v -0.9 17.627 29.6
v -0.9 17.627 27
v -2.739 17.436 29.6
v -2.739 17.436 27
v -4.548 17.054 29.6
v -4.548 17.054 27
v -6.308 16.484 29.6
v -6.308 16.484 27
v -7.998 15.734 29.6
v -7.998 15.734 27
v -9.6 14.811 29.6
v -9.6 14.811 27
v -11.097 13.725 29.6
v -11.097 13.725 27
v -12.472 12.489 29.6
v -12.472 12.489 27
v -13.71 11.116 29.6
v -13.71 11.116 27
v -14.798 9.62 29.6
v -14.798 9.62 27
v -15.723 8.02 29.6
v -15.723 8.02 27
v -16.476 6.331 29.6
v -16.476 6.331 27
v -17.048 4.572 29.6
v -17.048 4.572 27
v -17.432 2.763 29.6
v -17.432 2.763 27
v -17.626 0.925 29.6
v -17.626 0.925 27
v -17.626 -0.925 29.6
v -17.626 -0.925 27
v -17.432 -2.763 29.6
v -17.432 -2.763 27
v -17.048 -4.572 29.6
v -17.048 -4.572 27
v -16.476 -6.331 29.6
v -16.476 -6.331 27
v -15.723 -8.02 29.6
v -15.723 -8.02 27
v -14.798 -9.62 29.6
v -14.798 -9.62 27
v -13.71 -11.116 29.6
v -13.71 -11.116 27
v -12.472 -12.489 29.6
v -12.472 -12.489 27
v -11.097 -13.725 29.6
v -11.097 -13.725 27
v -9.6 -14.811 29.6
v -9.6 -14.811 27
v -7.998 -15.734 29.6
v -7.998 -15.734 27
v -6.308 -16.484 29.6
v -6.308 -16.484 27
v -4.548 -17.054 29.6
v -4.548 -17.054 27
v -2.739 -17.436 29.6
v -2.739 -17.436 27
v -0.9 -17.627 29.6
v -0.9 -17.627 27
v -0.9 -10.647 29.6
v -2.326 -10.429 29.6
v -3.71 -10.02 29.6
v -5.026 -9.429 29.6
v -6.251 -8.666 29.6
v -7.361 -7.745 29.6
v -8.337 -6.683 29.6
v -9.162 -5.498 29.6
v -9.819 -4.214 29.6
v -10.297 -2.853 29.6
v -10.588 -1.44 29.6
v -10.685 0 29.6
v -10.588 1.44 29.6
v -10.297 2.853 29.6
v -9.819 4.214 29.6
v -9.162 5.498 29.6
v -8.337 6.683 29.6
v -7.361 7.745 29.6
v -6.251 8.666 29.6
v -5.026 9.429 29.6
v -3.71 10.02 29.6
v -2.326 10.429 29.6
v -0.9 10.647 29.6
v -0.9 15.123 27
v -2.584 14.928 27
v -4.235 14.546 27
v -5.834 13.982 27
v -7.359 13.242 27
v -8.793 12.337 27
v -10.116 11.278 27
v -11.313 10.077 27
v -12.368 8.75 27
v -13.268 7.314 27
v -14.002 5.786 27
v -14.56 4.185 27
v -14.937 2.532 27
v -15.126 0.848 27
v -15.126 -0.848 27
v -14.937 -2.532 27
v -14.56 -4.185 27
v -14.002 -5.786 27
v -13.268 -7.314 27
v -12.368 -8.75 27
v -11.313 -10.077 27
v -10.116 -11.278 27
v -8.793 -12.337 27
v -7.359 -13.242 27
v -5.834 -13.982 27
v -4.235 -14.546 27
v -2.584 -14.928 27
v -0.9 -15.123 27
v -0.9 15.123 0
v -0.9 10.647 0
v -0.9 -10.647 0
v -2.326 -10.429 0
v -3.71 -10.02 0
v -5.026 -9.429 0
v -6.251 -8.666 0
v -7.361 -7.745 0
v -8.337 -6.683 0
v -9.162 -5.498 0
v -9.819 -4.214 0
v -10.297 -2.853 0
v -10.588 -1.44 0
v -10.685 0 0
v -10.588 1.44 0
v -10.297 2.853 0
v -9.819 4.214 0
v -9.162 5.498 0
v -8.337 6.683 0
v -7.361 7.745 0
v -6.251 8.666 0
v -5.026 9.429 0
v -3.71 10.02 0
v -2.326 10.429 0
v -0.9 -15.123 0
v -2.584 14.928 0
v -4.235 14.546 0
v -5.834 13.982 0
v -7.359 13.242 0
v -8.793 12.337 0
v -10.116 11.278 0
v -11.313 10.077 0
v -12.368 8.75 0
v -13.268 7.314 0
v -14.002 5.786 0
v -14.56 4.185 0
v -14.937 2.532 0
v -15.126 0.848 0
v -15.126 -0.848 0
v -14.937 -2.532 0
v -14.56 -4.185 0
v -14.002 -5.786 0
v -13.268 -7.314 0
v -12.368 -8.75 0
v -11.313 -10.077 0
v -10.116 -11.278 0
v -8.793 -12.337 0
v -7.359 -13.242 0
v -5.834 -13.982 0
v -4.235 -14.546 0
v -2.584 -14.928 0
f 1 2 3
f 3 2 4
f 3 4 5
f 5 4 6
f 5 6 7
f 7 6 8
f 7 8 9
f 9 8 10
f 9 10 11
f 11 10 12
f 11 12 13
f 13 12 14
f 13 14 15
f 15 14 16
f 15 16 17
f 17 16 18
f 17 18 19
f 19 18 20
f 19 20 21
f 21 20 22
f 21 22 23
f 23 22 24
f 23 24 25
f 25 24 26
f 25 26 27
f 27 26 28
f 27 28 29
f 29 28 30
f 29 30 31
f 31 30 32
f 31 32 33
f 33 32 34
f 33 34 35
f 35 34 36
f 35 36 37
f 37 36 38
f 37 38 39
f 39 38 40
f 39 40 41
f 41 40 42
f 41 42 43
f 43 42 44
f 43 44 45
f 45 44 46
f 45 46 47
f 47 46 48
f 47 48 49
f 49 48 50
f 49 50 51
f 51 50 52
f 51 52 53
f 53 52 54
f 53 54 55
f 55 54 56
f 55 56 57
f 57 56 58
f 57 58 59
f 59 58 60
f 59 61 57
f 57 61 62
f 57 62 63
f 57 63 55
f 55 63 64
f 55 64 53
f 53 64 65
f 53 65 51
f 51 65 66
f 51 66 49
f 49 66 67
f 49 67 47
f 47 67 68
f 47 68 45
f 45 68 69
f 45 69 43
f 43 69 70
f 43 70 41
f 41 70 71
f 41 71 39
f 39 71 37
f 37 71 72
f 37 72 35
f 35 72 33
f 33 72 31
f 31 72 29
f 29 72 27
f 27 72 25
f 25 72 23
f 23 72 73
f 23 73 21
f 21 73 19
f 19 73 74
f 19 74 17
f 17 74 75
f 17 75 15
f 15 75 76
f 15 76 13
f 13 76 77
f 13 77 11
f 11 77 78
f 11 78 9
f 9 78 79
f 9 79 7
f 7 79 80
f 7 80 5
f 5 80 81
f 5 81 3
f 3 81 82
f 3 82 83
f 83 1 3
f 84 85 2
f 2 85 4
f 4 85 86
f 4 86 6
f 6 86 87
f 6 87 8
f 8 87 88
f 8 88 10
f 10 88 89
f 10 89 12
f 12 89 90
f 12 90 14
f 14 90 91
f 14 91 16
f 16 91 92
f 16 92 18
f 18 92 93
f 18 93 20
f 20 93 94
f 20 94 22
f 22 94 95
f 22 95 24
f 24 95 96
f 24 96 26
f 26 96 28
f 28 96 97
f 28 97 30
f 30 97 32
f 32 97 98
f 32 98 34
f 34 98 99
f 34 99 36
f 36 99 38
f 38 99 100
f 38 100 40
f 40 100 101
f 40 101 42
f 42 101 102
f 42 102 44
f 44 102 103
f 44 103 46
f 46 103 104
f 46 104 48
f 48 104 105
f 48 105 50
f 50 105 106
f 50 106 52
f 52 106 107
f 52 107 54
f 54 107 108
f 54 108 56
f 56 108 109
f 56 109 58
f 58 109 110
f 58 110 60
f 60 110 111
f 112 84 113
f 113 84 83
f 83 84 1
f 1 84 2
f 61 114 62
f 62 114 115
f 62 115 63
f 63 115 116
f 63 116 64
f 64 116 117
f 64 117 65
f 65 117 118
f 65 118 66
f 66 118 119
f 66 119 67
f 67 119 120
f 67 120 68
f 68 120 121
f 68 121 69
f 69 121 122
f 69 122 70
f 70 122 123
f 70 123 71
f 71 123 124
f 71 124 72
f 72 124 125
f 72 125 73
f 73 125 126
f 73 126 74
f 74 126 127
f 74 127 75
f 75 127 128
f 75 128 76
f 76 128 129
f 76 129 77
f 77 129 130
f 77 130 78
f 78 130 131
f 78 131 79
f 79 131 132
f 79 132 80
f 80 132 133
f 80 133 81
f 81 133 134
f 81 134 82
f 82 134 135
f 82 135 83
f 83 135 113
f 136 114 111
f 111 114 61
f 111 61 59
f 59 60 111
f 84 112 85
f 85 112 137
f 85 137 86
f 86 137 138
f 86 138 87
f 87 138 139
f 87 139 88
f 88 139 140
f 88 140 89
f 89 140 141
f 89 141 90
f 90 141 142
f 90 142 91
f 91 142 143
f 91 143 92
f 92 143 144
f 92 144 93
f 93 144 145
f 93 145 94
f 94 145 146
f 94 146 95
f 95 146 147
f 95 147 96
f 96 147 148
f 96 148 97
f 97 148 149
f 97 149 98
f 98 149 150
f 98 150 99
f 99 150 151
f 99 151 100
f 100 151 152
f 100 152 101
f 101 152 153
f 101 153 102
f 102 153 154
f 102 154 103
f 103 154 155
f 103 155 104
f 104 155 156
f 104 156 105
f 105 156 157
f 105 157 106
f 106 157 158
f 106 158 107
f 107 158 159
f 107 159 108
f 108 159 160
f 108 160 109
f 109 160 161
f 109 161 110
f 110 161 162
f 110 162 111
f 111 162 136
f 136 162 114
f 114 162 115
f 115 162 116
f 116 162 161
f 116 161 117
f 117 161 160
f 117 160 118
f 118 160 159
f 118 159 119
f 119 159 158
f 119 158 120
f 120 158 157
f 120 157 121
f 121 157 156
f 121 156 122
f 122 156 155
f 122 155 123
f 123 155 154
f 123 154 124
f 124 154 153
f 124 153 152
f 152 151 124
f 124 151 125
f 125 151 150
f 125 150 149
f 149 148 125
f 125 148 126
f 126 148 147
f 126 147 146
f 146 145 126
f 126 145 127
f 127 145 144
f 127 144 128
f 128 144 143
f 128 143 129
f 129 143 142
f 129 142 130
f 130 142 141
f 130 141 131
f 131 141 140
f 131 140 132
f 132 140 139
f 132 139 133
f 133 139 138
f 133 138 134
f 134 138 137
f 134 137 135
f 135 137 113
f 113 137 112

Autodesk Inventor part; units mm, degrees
ref_plane "YZ Plane" through (0, 0, 0) normal (1, 0, 0) x (0, 1, 0)
ref_plane "XZ Plane" through (0, 0, 0) normal (0, 1, 0) x (-1, 0, 0)
ref_plane "XY Plane" through (0, 0, 0) normal (0, 0, 1) x (1, 0, 0)
sketch "Sketch1" plane through (0, 0, 0) normal (0, 0, 1) x (1, 0, 0)
  circle A0 centre (0, 0) radius 10.685 construction
  line L0 (-0.9, 10.647) -> (-0.9, -10.647) construction
  line L1 (-0.9, 10.647) -> (20.3941, 10.647) construction
  arc A1 (-0.9, 15.1232) -> (-0.9, -15.1232) centre (0, 0) ccw
  line L2 (-0.9, 10.647) -> (-0.9, 15.1232)
  line L3 (-0.9, -15.1232) -> (-0.9, -10.647)
  arc A2 (-0.9, 10.647) -> (-0.9, -10.647) centre (0, 0) ccw
  dimension "d0" = 21.37
  dimension "d1" = 90
  dimension "d2" = 0.9
  dimension "d3" = 15.15
extrude "Extrusion1" add sketch "Sketch1" along normal blind 27
sketch "Sketch2" plane through (0, 0, 27) normal (0, 0, 1) x (1, 0, 0)
  arc A0 (-0.9, 17.627) -> (-0.9, -17.627) centre (0, 0) ccw
  arc A1 (-0.9, 15.1232) -> (-0.9, -15.1232) centre (0, 0) ccw projected
  line L0 (-0.9, 10.647) -> (-0.9, 15.1232) projected
  line L1 (-0.9, 10.647) -> (-0.9, 17.627)
  line L2 (-0.9, -17.627) -> (-0.9, -10.647)
  arc A2 (-0.9, 10.647) -> (-0.9, -10.647) centre (0, 0) ccw projected
  arc A3 (-0.9, 10.647) -> (-0.9, -10.647) centre (0, 0) ccw
  point P0 (-0.9, 15.1232)
  dimension "d6" = 17.65
extrude "Extrusion2" add sketch "Sketch2" along normal blind 2.6
properties part number "Shim"
